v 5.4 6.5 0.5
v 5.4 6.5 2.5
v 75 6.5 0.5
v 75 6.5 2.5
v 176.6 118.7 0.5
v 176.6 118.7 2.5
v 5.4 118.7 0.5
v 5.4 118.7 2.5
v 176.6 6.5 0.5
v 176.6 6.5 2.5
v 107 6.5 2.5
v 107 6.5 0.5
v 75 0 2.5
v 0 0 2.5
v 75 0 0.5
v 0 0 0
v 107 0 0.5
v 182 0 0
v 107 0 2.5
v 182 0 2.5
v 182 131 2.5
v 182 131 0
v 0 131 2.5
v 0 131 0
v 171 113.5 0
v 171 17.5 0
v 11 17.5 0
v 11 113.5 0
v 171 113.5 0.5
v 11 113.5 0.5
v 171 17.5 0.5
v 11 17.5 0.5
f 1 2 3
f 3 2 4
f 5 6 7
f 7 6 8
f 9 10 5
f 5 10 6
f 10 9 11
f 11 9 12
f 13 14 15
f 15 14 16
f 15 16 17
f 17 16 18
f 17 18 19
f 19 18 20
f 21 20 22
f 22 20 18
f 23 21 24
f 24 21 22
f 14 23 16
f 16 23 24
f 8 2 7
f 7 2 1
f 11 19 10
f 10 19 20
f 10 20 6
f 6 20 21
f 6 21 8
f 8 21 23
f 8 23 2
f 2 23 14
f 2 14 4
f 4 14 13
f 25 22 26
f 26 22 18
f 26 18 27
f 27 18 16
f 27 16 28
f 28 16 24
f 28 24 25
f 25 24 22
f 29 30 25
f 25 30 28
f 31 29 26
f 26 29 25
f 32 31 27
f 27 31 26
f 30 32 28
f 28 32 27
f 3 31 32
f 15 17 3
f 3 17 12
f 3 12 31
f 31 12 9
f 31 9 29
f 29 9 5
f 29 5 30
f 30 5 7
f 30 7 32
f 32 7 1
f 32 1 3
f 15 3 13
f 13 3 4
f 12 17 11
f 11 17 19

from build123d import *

# Parameters (mm, degrees)
ESBO_O1_W                = 182
ESBO_O1_H                = 131
ESBO_O1_W_2              = 171.2
ESBO_O1_H_2              = 112.2
RESSALTO_EXTRUS_O1_DEPTH = 2.5
ESBO_O1_4_W              = 171.2
ESBO_O1_4_H              = 112.2
ESBO_O1_4_W_2            = 160
ESBO_O1_4_H_2            = 96
RESSALTO_EXTRUS_O2_DEPTH = 0.5
ESBO_O2_W                = 32
ESBO_O2_H                = 30.698097853
CORTE_EXTRUS_O1_DEPTH    = 221.523241406


with BuildPart() as part:
    # Esboço1 → Ressalto-extrusão1 (new body)
    with BuildSketch(Plane.XY):
        with Locations((91, 65.5)):
            Rectangle(ESBO_O1_W, ESBO_O1_H)
        with Locations((91, 62.6)):
            Rectangle(ESBO_O1_W_2, ESBO_O1_H_2, mode=Mode.SUBTRACT)
    extrude(amount=RESSALTO_EXTRUS_O1_DEPTH)

    # Esboço1<4> → Ressalto-extrusão2 (add)
    with BuildSketch(Plane.XY):
        with Locations((91, 62.6)):
            Rectangle(ESBO_O1_4_W, ESBO_O1_4_H)
        with Locations((91, 65.5)):
            Rectangle(ESBO_O1_4_W_2, ESBO_O1_4_H_2, mode=Mode.SUBTRACT)
    extrude(amount=RESSALTO_EXTRUS_O2_DEPTH)

    # Esboço2 → Corte-extrusão1 (cut, through all)
    with BuildSketch(Plane(origin=(0, 6.5, 0), x_dir=(1, 0, 0), z_dir=(0, 1, 0))):
        with Locations((91, -15.849048927)):
            Rectangle(ESBO_O2_W, ESBO_O2_H)
    extrude(amount=-CORTE_EXTRUS_O1_DEPTH, mode=Mode.SUBTRACT)


solid = part.part
